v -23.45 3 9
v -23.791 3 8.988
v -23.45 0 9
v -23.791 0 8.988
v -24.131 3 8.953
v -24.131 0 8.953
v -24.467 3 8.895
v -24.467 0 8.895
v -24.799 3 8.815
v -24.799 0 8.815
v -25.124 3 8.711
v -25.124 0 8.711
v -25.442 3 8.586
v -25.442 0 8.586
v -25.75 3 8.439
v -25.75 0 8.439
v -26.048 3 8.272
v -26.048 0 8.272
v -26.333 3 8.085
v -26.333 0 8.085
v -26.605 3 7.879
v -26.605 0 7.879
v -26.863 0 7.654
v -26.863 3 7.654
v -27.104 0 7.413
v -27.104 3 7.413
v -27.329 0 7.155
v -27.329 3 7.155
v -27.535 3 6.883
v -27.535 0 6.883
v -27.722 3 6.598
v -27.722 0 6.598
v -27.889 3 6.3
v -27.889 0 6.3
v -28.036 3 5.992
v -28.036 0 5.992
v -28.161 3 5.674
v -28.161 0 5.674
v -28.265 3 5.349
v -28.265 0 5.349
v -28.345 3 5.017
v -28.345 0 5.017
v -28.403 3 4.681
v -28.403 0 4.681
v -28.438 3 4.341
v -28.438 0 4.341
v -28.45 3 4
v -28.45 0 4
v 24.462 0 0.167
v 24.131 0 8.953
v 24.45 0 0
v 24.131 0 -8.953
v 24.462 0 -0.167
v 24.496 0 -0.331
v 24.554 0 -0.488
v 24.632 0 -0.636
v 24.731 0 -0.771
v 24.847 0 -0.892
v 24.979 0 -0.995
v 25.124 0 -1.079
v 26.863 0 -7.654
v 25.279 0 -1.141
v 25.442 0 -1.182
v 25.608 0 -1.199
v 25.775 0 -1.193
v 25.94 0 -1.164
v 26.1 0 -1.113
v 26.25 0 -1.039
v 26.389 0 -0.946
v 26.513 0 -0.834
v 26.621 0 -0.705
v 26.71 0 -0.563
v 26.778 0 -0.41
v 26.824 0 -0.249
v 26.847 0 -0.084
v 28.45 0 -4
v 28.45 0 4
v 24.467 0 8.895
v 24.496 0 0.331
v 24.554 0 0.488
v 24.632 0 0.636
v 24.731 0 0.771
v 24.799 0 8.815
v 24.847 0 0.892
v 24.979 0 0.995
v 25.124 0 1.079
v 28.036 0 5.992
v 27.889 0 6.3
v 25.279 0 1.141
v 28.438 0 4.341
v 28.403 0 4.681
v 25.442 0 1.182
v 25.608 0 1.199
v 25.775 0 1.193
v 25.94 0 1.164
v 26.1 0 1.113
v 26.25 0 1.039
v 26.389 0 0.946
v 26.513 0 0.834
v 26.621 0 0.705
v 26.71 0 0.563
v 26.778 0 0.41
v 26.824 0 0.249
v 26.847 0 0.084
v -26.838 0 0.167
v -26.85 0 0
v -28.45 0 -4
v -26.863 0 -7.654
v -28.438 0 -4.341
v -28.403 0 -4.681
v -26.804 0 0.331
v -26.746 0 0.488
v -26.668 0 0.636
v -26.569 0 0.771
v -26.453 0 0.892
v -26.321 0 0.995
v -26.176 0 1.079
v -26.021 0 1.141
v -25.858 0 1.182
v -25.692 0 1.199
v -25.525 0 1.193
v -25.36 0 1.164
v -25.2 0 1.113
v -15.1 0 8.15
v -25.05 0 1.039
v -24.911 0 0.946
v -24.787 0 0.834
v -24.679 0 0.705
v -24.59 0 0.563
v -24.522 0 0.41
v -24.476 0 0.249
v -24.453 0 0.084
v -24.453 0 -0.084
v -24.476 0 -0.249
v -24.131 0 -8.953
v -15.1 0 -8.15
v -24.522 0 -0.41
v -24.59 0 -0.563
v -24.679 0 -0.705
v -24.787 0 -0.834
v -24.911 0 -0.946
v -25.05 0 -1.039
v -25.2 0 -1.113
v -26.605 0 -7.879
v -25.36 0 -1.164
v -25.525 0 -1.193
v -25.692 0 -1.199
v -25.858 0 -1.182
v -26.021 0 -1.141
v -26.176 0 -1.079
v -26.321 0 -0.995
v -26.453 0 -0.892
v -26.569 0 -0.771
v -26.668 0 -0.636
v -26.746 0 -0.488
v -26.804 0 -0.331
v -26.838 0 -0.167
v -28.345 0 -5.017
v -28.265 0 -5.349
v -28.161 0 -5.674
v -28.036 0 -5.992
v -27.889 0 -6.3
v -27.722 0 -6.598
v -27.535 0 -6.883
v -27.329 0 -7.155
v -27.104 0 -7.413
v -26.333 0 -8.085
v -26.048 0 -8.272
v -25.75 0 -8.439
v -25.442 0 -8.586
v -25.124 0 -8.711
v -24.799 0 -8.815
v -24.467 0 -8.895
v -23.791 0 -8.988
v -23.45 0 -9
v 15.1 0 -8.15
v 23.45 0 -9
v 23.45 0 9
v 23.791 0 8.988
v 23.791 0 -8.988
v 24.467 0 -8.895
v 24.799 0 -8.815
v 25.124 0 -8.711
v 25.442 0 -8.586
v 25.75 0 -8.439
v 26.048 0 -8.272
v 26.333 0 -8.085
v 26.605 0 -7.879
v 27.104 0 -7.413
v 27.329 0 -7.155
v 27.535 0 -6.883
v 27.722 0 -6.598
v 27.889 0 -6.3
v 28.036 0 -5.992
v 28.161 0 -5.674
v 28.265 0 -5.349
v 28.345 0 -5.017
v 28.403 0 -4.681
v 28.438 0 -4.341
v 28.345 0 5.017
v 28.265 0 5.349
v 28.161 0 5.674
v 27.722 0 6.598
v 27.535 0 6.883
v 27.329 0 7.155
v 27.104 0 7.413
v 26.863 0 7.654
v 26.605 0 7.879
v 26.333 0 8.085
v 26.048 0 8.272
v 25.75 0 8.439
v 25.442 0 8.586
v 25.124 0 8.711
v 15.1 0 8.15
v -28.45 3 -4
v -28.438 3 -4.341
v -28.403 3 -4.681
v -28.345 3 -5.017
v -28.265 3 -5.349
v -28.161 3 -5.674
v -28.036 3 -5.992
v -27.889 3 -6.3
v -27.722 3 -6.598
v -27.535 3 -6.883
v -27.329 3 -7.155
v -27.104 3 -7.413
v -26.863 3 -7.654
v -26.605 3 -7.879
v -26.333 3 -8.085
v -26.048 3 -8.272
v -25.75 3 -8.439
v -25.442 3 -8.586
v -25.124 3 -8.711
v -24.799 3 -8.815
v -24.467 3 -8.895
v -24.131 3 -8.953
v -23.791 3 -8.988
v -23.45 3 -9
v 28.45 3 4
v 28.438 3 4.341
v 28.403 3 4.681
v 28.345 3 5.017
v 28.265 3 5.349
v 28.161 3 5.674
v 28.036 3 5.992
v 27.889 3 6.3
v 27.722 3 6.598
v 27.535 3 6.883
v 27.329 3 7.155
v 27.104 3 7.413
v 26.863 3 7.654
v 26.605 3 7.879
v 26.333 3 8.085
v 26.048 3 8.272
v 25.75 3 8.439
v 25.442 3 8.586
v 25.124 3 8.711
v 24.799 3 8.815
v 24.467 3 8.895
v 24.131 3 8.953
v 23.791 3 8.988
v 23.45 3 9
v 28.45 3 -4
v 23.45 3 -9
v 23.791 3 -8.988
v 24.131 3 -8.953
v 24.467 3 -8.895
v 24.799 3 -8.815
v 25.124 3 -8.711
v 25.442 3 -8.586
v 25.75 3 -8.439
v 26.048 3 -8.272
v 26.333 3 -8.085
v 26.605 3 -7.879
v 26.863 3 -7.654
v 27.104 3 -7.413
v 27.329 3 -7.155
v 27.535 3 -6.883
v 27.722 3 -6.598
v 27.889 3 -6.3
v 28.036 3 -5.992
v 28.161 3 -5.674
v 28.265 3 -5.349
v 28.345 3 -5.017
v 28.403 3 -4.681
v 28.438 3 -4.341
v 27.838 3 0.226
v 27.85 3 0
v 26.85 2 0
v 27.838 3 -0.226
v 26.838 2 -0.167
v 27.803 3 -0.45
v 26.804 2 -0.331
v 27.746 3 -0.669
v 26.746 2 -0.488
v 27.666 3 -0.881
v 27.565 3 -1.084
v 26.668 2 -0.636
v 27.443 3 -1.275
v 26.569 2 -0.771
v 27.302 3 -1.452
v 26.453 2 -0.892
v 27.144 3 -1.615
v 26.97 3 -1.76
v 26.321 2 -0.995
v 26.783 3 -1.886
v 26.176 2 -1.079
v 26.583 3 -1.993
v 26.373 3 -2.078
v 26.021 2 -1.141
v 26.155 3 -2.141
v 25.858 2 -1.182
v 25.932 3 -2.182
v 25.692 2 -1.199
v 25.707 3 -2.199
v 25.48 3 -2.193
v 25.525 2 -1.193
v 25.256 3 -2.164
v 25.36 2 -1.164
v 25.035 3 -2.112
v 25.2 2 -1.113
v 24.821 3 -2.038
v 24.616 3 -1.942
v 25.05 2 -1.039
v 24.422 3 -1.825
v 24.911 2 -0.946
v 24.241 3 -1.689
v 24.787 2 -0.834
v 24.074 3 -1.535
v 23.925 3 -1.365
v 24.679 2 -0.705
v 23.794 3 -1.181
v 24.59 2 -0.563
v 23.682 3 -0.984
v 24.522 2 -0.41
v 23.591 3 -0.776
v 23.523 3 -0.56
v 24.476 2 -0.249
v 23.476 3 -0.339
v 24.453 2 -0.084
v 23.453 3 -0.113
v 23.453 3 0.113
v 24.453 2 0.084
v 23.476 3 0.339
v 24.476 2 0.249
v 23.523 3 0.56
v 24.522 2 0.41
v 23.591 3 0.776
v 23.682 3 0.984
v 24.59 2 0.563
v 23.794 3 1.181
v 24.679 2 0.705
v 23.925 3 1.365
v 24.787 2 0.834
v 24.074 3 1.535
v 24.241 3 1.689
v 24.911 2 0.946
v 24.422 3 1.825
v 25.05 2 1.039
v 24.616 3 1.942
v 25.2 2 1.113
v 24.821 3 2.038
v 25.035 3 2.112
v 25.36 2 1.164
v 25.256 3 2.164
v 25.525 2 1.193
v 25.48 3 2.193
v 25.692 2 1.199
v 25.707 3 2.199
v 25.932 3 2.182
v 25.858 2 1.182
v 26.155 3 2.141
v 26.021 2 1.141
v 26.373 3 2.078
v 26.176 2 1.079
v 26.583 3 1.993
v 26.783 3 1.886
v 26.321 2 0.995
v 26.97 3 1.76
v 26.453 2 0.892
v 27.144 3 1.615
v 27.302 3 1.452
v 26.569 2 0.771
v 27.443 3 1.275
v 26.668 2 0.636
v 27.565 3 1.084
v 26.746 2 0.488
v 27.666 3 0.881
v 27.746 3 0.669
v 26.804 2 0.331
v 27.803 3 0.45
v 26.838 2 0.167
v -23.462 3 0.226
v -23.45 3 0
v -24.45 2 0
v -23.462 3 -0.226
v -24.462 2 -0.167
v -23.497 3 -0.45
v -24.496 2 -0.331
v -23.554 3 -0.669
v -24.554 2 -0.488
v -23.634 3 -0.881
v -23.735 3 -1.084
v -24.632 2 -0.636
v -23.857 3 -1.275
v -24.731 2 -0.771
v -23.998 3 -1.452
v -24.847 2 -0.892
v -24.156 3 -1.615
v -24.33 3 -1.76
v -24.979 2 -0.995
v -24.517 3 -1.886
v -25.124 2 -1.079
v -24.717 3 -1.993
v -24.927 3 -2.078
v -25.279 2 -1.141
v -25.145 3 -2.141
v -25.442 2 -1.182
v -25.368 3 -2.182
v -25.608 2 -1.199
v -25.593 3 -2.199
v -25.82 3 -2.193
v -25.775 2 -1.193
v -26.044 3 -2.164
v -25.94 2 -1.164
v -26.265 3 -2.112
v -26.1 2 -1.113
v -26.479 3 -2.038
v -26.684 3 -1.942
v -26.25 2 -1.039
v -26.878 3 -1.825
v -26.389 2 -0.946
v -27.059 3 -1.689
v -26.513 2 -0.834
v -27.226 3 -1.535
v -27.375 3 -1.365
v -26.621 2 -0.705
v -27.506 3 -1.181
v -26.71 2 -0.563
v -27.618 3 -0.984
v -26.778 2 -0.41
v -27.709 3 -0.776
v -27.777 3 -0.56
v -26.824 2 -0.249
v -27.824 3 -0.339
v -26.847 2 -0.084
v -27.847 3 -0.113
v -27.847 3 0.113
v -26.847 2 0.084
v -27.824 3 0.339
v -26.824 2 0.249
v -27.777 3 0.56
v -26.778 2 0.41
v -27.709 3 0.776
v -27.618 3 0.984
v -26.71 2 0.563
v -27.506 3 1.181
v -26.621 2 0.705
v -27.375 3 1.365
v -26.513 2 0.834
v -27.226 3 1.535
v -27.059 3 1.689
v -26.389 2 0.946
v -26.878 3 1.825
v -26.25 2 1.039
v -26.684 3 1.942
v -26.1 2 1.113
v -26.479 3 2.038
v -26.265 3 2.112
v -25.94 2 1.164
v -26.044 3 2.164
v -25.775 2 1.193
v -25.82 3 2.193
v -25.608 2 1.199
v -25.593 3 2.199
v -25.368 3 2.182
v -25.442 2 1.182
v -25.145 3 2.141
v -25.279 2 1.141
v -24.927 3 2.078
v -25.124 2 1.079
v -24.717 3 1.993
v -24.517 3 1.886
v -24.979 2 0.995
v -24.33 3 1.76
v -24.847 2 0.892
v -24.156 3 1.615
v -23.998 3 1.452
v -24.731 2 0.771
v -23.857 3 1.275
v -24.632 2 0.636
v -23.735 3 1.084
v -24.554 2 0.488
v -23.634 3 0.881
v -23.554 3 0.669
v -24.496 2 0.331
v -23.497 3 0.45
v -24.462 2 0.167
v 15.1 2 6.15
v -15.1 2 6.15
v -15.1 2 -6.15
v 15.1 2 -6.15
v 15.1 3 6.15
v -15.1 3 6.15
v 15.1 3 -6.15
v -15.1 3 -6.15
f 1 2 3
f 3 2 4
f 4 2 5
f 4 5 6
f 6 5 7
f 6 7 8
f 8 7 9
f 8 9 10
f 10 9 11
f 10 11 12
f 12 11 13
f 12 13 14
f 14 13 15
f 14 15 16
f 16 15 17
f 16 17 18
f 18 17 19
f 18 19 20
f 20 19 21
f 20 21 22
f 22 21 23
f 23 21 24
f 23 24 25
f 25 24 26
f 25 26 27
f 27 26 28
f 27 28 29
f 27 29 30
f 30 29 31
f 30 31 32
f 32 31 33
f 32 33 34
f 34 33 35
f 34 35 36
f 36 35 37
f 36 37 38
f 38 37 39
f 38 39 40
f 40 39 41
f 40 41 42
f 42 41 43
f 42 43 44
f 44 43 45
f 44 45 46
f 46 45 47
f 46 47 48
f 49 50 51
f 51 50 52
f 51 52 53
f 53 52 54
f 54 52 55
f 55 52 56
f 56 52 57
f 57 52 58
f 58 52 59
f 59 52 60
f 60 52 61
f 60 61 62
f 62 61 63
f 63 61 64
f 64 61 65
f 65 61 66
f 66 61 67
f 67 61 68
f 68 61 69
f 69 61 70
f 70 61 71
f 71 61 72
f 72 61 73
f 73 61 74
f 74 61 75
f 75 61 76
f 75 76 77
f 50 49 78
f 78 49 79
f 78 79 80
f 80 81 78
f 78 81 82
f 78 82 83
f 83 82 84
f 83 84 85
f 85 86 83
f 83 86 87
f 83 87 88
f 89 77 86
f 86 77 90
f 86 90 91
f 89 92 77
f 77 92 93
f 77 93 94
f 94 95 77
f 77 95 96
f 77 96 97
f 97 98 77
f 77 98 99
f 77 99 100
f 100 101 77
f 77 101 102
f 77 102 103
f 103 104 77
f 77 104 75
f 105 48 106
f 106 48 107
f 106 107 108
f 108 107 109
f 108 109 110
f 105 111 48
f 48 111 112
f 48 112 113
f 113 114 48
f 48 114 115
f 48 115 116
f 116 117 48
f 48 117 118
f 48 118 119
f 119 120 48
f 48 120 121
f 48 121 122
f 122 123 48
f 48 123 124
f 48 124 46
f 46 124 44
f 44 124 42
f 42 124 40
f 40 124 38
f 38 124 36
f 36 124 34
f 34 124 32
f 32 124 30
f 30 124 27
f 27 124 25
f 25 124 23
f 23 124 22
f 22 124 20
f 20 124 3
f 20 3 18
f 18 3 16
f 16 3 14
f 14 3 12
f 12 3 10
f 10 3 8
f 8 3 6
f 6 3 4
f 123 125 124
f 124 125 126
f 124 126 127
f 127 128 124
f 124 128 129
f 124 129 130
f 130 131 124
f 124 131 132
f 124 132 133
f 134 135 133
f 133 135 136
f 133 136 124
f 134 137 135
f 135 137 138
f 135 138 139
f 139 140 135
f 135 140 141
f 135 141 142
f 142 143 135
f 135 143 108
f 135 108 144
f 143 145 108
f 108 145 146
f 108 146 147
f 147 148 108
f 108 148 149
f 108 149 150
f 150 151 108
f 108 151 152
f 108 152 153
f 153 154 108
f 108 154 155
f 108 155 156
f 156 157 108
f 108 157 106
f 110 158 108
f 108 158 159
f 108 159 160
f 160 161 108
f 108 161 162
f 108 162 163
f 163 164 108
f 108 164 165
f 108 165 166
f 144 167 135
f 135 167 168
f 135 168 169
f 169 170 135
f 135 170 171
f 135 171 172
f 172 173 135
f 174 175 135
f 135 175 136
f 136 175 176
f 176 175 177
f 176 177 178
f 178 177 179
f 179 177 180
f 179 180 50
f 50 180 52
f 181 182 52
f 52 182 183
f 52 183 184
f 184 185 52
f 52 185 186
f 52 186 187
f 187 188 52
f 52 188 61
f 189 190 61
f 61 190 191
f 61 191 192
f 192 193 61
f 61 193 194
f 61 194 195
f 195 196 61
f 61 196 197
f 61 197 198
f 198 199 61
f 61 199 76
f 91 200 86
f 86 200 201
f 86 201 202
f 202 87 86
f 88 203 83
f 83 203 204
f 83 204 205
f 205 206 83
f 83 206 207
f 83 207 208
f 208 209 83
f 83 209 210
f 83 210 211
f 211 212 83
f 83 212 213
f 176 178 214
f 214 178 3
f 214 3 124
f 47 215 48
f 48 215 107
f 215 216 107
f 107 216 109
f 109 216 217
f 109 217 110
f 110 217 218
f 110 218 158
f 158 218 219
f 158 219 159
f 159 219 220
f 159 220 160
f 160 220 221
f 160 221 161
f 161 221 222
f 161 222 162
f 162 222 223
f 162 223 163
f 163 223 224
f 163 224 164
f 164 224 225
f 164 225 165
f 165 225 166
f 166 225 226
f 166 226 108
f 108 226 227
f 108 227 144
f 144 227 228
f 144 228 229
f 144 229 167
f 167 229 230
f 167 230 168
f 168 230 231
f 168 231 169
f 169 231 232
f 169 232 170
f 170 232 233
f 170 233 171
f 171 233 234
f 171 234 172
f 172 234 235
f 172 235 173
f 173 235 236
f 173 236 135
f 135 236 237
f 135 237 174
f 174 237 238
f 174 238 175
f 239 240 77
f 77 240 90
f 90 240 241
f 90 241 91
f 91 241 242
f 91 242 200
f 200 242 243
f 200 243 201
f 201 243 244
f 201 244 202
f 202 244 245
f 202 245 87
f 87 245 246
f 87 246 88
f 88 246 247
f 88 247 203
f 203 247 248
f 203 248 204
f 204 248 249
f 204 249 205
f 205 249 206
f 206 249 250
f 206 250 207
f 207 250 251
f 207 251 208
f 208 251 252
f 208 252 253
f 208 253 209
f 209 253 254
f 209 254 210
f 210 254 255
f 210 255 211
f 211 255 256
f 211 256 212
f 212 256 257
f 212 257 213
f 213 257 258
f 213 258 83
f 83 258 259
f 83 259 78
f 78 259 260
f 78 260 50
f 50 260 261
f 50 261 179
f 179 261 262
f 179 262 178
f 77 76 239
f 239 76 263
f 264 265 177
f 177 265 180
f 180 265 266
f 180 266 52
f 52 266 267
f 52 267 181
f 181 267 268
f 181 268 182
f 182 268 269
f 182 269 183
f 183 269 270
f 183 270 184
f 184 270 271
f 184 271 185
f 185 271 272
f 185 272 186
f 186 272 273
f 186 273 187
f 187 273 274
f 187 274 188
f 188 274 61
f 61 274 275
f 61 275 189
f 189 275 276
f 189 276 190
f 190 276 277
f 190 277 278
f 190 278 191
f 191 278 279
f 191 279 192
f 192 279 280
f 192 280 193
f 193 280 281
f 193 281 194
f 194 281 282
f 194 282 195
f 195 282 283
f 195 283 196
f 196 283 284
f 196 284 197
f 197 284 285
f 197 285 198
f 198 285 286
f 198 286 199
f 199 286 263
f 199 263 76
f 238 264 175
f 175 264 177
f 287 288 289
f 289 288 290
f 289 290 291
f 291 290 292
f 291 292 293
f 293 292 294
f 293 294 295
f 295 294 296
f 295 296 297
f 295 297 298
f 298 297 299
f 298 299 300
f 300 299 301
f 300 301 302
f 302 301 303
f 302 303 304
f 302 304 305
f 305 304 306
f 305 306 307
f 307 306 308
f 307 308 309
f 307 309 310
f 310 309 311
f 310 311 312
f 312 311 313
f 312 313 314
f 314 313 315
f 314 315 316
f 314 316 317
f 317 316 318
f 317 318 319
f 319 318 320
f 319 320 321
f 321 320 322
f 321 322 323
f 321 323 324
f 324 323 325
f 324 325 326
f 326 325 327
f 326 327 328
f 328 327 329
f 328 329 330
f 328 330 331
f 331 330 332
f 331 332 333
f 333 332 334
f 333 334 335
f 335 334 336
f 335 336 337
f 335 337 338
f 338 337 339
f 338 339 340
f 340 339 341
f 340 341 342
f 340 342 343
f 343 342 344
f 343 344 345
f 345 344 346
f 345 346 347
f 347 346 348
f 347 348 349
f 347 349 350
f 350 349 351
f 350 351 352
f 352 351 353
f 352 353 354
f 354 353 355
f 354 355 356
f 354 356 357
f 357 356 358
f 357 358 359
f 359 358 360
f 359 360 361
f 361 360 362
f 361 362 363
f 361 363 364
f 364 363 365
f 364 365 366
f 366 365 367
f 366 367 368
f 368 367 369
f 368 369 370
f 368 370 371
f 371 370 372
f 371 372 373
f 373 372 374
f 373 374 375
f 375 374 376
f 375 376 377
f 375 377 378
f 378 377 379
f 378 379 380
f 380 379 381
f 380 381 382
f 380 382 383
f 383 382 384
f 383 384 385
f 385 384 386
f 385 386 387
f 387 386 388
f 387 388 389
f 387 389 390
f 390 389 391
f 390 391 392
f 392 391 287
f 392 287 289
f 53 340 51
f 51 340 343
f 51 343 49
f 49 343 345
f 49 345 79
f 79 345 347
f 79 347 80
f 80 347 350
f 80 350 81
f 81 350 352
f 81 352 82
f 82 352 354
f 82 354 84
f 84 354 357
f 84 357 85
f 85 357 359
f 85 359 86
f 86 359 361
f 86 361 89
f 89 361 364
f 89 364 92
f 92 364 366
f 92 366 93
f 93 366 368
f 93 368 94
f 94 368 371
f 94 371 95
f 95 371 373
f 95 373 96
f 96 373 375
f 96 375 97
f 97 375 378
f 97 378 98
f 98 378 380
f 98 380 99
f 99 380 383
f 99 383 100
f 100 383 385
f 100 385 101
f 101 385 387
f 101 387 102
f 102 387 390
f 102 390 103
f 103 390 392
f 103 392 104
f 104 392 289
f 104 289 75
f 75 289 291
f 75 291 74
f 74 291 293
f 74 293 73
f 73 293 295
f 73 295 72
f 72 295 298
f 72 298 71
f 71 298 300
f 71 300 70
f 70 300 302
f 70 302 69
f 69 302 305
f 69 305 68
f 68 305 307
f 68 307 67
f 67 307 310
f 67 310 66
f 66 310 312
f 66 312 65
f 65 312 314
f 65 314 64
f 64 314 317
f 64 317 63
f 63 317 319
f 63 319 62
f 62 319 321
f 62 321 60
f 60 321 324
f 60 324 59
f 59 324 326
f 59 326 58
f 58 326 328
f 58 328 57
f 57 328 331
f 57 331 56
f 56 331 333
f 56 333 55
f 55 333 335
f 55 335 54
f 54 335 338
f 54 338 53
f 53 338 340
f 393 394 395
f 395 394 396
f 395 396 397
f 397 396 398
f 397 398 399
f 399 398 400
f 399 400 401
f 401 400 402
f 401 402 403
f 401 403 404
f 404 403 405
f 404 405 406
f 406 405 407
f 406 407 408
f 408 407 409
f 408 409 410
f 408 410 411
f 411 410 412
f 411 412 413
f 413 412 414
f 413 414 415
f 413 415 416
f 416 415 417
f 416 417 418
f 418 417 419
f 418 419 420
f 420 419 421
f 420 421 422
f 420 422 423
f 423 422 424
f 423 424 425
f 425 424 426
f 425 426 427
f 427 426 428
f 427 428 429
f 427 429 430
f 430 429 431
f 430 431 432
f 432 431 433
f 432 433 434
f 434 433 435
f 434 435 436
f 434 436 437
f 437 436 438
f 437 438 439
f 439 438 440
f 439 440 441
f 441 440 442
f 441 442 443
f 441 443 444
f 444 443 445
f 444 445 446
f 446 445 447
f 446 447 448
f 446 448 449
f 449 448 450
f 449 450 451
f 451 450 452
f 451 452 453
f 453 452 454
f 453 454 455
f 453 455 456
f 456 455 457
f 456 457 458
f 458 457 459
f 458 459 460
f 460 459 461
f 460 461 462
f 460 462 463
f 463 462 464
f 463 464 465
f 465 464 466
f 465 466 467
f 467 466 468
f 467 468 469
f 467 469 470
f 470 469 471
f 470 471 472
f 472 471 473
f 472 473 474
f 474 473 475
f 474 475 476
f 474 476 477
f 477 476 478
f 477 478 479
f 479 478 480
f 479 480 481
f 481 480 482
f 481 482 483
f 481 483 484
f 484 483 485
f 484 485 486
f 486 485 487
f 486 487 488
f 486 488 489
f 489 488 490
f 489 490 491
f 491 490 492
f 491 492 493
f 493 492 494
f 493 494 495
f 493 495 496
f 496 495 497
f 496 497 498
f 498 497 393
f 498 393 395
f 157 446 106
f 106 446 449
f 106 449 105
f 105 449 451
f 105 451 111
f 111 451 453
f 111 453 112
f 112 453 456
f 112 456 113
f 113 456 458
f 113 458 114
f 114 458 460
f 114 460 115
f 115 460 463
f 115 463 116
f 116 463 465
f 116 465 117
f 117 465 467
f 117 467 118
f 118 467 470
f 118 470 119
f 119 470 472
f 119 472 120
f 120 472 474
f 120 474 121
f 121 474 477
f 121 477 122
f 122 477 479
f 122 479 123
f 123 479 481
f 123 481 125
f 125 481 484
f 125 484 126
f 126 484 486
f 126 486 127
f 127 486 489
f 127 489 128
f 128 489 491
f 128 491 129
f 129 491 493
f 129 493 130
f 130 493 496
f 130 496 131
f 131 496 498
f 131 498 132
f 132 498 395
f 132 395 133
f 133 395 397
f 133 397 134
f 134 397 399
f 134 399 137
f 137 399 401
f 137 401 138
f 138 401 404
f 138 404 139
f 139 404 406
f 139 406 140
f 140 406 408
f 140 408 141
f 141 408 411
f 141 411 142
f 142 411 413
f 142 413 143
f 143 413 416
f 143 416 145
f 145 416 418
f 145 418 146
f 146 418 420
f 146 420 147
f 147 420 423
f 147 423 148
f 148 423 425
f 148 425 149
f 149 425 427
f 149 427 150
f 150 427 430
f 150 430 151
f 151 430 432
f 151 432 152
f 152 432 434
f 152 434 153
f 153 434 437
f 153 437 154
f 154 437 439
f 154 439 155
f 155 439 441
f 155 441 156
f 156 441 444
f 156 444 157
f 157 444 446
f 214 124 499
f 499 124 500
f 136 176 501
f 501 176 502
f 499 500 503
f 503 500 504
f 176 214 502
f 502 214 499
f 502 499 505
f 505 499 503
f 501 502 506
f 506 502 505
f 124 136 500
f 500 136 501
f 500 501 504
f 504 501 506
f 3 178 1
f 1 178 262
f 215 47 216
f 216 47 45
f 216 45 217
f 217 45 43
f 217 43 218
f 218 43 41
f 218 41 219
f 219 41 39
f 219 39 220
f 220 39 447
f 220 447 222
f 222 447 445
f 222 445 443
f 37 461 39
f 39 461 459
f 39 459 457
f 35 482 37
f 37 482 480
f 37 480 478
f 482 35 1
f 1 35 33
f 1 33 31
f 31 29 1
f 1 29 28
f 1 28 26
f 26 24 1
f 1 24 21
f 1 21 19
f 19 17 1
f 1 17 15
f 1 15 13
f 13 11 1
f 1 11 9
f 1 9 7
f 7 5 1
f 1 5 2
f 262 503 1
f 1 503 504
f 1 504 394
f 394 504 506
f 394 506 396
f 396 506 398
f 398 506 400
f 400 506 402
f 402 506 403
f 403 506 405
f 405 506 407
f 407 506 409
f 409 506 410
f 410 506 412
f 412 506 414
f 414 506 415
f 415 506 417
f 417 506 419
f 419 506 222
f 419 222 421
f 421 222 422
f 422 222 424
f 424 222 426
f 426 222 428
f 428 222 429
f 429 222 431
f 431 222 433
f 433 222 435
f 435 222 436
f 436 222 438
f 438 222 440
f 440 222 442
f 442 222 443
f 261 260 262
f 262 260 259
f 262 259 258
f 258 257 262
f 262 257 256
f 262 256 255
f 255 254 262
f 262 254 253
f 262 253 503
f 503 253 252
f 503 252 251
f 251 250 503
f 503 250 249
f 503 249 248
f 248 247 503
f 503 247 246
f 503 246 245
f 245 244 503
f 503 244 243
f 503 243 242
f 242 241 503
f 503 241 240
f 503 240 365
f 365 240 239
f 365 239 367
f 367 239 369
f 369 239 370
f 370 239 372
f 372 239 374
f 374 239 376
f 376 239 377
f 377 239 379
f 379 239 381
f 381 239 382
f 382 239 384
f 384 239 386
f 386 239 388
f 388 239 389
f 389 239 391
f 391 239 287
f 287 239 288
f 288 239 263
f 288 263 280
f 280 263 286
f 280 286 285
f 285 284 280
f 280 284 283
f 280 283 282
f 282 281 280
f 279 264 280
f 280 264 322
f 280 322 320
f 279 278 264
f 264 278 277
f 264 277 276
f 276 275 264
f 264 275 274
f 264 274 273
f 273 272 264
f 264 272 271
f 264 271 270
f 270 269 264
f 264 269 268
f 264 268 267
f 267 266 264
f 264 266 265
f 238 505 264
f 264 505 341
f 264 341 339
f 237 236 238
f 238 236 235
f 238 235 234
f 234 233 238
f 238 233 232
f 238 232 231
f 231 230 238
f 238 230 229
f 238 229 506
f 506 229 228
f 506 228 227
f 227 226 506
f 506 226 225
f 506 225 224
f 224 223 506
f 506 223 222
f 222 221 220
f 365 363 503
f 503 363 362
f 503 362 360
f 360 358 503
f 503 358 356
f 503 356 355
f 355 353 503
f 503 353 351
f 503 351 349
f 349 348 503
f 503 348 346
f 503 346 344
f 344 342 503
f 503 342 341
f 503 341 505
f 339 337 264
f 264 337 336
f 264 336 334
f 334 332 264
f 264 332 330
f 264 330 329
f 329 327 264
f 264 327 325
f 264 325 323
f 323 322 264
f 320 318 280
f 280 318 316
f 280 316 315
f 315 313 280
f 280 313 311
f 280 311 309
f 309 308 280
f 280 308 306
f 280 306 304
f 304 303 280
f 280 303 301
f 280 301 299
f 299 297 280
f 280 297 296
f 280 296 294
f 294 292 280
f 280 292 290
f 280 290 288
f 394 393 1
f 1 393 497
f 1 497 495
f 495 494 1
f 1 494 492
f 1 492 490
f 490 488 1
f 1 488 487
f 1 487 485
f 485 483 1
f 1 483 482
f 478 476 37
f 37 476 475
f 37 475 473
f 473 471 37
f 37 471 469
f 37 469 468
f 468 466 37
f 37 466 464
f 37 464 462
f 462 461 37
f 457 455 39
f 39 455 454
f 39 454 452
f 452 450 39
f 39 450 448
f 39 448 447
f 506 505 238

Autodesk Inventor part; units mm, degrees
ref_plane "YZ Plane" through (0, 0, 0) normal (1, 0, 0) x (0, 1, 0)
ref_plane "XZ Plane" through (0, 0, 0) normal (0, 1, 0) x (-1, 0, 0)
ref_plane "XY Plane" through (0, 0, 0) normal (0, 0, 1) x (1, 0, 0)
sketch "Skizze1" plane through (0, 0, 0) normal (0, 1, 0) x (-1, 0, 0)
  line L0 (15.1, 6.15) -> (-15.1, 6.15)
  line L1 (-15.1, 6.15) -> (-15.1, -6.15)
  line L2 (-15.1, -6.15) -> (15.1, -6.15)
  line L3 (15.1, -6.15) -> (15.1, 6.15)
  line L4 (15.1, 6.15) -> (-15.1, -6.15) construction
  line L5 (-15.1, 6.15) -> (15.1, -6.15) construction
  line L6 (28.45, 9) -> (-28.45, 9)
  line L7 (-28.45, 9) -> (-28.45, -9)
  line L8 (-28.45, -9) -> (28.45, -9)
  line L9 (28.45, -9) -> (28.45, 9)
  line L10 (28.45, 9) -> (-28.45, -9) construction
  line L11 (-28.45, 9) -> (28.45, -9) construction
  point P0 (0, 0)
  dimension "d0" = 30.2
  dimension "d1" = 12.3
  dimension "d2" = 56.9
  dimension "d3" = 18
extrude "Extrusion1" add sketch "Skizze1" along normal blind 3
chamfer "Fase1" distance 2 angle 45 2 edges at (0, 0, -6.15) (0, 0, 6.15)
sketch "Skizze2" plane through (0, 3, 0) normal (0, 1, 0) x (1, 0, 0)
  line L0 (0, 0) -> (-25.65, 0)
  line L1 (-25.65, 0) -> (25.65, 0)
  dimension "d9" = 25.65
  dimension "d10" = 51.3
hole "Bohrung1" at (25.65, 3, 0) at (-25.65, 3, 0) direction (0, -1, 0) diameter 2.4 end through all countersink diameter 4.4 countersink angle 90 clearance for "Flachkopfmaschinenschraube" size "M2" standard "ANSI Metrisches M Profil"
fillet "Rundung1" radius 5 4 edges at (28.45, 1.5, -9) (28.45, 1.5, 9) (-28.45, 1.5, -9) (-28.45, 1.5, 9)
properties part number "Wago2Din_1Way"
